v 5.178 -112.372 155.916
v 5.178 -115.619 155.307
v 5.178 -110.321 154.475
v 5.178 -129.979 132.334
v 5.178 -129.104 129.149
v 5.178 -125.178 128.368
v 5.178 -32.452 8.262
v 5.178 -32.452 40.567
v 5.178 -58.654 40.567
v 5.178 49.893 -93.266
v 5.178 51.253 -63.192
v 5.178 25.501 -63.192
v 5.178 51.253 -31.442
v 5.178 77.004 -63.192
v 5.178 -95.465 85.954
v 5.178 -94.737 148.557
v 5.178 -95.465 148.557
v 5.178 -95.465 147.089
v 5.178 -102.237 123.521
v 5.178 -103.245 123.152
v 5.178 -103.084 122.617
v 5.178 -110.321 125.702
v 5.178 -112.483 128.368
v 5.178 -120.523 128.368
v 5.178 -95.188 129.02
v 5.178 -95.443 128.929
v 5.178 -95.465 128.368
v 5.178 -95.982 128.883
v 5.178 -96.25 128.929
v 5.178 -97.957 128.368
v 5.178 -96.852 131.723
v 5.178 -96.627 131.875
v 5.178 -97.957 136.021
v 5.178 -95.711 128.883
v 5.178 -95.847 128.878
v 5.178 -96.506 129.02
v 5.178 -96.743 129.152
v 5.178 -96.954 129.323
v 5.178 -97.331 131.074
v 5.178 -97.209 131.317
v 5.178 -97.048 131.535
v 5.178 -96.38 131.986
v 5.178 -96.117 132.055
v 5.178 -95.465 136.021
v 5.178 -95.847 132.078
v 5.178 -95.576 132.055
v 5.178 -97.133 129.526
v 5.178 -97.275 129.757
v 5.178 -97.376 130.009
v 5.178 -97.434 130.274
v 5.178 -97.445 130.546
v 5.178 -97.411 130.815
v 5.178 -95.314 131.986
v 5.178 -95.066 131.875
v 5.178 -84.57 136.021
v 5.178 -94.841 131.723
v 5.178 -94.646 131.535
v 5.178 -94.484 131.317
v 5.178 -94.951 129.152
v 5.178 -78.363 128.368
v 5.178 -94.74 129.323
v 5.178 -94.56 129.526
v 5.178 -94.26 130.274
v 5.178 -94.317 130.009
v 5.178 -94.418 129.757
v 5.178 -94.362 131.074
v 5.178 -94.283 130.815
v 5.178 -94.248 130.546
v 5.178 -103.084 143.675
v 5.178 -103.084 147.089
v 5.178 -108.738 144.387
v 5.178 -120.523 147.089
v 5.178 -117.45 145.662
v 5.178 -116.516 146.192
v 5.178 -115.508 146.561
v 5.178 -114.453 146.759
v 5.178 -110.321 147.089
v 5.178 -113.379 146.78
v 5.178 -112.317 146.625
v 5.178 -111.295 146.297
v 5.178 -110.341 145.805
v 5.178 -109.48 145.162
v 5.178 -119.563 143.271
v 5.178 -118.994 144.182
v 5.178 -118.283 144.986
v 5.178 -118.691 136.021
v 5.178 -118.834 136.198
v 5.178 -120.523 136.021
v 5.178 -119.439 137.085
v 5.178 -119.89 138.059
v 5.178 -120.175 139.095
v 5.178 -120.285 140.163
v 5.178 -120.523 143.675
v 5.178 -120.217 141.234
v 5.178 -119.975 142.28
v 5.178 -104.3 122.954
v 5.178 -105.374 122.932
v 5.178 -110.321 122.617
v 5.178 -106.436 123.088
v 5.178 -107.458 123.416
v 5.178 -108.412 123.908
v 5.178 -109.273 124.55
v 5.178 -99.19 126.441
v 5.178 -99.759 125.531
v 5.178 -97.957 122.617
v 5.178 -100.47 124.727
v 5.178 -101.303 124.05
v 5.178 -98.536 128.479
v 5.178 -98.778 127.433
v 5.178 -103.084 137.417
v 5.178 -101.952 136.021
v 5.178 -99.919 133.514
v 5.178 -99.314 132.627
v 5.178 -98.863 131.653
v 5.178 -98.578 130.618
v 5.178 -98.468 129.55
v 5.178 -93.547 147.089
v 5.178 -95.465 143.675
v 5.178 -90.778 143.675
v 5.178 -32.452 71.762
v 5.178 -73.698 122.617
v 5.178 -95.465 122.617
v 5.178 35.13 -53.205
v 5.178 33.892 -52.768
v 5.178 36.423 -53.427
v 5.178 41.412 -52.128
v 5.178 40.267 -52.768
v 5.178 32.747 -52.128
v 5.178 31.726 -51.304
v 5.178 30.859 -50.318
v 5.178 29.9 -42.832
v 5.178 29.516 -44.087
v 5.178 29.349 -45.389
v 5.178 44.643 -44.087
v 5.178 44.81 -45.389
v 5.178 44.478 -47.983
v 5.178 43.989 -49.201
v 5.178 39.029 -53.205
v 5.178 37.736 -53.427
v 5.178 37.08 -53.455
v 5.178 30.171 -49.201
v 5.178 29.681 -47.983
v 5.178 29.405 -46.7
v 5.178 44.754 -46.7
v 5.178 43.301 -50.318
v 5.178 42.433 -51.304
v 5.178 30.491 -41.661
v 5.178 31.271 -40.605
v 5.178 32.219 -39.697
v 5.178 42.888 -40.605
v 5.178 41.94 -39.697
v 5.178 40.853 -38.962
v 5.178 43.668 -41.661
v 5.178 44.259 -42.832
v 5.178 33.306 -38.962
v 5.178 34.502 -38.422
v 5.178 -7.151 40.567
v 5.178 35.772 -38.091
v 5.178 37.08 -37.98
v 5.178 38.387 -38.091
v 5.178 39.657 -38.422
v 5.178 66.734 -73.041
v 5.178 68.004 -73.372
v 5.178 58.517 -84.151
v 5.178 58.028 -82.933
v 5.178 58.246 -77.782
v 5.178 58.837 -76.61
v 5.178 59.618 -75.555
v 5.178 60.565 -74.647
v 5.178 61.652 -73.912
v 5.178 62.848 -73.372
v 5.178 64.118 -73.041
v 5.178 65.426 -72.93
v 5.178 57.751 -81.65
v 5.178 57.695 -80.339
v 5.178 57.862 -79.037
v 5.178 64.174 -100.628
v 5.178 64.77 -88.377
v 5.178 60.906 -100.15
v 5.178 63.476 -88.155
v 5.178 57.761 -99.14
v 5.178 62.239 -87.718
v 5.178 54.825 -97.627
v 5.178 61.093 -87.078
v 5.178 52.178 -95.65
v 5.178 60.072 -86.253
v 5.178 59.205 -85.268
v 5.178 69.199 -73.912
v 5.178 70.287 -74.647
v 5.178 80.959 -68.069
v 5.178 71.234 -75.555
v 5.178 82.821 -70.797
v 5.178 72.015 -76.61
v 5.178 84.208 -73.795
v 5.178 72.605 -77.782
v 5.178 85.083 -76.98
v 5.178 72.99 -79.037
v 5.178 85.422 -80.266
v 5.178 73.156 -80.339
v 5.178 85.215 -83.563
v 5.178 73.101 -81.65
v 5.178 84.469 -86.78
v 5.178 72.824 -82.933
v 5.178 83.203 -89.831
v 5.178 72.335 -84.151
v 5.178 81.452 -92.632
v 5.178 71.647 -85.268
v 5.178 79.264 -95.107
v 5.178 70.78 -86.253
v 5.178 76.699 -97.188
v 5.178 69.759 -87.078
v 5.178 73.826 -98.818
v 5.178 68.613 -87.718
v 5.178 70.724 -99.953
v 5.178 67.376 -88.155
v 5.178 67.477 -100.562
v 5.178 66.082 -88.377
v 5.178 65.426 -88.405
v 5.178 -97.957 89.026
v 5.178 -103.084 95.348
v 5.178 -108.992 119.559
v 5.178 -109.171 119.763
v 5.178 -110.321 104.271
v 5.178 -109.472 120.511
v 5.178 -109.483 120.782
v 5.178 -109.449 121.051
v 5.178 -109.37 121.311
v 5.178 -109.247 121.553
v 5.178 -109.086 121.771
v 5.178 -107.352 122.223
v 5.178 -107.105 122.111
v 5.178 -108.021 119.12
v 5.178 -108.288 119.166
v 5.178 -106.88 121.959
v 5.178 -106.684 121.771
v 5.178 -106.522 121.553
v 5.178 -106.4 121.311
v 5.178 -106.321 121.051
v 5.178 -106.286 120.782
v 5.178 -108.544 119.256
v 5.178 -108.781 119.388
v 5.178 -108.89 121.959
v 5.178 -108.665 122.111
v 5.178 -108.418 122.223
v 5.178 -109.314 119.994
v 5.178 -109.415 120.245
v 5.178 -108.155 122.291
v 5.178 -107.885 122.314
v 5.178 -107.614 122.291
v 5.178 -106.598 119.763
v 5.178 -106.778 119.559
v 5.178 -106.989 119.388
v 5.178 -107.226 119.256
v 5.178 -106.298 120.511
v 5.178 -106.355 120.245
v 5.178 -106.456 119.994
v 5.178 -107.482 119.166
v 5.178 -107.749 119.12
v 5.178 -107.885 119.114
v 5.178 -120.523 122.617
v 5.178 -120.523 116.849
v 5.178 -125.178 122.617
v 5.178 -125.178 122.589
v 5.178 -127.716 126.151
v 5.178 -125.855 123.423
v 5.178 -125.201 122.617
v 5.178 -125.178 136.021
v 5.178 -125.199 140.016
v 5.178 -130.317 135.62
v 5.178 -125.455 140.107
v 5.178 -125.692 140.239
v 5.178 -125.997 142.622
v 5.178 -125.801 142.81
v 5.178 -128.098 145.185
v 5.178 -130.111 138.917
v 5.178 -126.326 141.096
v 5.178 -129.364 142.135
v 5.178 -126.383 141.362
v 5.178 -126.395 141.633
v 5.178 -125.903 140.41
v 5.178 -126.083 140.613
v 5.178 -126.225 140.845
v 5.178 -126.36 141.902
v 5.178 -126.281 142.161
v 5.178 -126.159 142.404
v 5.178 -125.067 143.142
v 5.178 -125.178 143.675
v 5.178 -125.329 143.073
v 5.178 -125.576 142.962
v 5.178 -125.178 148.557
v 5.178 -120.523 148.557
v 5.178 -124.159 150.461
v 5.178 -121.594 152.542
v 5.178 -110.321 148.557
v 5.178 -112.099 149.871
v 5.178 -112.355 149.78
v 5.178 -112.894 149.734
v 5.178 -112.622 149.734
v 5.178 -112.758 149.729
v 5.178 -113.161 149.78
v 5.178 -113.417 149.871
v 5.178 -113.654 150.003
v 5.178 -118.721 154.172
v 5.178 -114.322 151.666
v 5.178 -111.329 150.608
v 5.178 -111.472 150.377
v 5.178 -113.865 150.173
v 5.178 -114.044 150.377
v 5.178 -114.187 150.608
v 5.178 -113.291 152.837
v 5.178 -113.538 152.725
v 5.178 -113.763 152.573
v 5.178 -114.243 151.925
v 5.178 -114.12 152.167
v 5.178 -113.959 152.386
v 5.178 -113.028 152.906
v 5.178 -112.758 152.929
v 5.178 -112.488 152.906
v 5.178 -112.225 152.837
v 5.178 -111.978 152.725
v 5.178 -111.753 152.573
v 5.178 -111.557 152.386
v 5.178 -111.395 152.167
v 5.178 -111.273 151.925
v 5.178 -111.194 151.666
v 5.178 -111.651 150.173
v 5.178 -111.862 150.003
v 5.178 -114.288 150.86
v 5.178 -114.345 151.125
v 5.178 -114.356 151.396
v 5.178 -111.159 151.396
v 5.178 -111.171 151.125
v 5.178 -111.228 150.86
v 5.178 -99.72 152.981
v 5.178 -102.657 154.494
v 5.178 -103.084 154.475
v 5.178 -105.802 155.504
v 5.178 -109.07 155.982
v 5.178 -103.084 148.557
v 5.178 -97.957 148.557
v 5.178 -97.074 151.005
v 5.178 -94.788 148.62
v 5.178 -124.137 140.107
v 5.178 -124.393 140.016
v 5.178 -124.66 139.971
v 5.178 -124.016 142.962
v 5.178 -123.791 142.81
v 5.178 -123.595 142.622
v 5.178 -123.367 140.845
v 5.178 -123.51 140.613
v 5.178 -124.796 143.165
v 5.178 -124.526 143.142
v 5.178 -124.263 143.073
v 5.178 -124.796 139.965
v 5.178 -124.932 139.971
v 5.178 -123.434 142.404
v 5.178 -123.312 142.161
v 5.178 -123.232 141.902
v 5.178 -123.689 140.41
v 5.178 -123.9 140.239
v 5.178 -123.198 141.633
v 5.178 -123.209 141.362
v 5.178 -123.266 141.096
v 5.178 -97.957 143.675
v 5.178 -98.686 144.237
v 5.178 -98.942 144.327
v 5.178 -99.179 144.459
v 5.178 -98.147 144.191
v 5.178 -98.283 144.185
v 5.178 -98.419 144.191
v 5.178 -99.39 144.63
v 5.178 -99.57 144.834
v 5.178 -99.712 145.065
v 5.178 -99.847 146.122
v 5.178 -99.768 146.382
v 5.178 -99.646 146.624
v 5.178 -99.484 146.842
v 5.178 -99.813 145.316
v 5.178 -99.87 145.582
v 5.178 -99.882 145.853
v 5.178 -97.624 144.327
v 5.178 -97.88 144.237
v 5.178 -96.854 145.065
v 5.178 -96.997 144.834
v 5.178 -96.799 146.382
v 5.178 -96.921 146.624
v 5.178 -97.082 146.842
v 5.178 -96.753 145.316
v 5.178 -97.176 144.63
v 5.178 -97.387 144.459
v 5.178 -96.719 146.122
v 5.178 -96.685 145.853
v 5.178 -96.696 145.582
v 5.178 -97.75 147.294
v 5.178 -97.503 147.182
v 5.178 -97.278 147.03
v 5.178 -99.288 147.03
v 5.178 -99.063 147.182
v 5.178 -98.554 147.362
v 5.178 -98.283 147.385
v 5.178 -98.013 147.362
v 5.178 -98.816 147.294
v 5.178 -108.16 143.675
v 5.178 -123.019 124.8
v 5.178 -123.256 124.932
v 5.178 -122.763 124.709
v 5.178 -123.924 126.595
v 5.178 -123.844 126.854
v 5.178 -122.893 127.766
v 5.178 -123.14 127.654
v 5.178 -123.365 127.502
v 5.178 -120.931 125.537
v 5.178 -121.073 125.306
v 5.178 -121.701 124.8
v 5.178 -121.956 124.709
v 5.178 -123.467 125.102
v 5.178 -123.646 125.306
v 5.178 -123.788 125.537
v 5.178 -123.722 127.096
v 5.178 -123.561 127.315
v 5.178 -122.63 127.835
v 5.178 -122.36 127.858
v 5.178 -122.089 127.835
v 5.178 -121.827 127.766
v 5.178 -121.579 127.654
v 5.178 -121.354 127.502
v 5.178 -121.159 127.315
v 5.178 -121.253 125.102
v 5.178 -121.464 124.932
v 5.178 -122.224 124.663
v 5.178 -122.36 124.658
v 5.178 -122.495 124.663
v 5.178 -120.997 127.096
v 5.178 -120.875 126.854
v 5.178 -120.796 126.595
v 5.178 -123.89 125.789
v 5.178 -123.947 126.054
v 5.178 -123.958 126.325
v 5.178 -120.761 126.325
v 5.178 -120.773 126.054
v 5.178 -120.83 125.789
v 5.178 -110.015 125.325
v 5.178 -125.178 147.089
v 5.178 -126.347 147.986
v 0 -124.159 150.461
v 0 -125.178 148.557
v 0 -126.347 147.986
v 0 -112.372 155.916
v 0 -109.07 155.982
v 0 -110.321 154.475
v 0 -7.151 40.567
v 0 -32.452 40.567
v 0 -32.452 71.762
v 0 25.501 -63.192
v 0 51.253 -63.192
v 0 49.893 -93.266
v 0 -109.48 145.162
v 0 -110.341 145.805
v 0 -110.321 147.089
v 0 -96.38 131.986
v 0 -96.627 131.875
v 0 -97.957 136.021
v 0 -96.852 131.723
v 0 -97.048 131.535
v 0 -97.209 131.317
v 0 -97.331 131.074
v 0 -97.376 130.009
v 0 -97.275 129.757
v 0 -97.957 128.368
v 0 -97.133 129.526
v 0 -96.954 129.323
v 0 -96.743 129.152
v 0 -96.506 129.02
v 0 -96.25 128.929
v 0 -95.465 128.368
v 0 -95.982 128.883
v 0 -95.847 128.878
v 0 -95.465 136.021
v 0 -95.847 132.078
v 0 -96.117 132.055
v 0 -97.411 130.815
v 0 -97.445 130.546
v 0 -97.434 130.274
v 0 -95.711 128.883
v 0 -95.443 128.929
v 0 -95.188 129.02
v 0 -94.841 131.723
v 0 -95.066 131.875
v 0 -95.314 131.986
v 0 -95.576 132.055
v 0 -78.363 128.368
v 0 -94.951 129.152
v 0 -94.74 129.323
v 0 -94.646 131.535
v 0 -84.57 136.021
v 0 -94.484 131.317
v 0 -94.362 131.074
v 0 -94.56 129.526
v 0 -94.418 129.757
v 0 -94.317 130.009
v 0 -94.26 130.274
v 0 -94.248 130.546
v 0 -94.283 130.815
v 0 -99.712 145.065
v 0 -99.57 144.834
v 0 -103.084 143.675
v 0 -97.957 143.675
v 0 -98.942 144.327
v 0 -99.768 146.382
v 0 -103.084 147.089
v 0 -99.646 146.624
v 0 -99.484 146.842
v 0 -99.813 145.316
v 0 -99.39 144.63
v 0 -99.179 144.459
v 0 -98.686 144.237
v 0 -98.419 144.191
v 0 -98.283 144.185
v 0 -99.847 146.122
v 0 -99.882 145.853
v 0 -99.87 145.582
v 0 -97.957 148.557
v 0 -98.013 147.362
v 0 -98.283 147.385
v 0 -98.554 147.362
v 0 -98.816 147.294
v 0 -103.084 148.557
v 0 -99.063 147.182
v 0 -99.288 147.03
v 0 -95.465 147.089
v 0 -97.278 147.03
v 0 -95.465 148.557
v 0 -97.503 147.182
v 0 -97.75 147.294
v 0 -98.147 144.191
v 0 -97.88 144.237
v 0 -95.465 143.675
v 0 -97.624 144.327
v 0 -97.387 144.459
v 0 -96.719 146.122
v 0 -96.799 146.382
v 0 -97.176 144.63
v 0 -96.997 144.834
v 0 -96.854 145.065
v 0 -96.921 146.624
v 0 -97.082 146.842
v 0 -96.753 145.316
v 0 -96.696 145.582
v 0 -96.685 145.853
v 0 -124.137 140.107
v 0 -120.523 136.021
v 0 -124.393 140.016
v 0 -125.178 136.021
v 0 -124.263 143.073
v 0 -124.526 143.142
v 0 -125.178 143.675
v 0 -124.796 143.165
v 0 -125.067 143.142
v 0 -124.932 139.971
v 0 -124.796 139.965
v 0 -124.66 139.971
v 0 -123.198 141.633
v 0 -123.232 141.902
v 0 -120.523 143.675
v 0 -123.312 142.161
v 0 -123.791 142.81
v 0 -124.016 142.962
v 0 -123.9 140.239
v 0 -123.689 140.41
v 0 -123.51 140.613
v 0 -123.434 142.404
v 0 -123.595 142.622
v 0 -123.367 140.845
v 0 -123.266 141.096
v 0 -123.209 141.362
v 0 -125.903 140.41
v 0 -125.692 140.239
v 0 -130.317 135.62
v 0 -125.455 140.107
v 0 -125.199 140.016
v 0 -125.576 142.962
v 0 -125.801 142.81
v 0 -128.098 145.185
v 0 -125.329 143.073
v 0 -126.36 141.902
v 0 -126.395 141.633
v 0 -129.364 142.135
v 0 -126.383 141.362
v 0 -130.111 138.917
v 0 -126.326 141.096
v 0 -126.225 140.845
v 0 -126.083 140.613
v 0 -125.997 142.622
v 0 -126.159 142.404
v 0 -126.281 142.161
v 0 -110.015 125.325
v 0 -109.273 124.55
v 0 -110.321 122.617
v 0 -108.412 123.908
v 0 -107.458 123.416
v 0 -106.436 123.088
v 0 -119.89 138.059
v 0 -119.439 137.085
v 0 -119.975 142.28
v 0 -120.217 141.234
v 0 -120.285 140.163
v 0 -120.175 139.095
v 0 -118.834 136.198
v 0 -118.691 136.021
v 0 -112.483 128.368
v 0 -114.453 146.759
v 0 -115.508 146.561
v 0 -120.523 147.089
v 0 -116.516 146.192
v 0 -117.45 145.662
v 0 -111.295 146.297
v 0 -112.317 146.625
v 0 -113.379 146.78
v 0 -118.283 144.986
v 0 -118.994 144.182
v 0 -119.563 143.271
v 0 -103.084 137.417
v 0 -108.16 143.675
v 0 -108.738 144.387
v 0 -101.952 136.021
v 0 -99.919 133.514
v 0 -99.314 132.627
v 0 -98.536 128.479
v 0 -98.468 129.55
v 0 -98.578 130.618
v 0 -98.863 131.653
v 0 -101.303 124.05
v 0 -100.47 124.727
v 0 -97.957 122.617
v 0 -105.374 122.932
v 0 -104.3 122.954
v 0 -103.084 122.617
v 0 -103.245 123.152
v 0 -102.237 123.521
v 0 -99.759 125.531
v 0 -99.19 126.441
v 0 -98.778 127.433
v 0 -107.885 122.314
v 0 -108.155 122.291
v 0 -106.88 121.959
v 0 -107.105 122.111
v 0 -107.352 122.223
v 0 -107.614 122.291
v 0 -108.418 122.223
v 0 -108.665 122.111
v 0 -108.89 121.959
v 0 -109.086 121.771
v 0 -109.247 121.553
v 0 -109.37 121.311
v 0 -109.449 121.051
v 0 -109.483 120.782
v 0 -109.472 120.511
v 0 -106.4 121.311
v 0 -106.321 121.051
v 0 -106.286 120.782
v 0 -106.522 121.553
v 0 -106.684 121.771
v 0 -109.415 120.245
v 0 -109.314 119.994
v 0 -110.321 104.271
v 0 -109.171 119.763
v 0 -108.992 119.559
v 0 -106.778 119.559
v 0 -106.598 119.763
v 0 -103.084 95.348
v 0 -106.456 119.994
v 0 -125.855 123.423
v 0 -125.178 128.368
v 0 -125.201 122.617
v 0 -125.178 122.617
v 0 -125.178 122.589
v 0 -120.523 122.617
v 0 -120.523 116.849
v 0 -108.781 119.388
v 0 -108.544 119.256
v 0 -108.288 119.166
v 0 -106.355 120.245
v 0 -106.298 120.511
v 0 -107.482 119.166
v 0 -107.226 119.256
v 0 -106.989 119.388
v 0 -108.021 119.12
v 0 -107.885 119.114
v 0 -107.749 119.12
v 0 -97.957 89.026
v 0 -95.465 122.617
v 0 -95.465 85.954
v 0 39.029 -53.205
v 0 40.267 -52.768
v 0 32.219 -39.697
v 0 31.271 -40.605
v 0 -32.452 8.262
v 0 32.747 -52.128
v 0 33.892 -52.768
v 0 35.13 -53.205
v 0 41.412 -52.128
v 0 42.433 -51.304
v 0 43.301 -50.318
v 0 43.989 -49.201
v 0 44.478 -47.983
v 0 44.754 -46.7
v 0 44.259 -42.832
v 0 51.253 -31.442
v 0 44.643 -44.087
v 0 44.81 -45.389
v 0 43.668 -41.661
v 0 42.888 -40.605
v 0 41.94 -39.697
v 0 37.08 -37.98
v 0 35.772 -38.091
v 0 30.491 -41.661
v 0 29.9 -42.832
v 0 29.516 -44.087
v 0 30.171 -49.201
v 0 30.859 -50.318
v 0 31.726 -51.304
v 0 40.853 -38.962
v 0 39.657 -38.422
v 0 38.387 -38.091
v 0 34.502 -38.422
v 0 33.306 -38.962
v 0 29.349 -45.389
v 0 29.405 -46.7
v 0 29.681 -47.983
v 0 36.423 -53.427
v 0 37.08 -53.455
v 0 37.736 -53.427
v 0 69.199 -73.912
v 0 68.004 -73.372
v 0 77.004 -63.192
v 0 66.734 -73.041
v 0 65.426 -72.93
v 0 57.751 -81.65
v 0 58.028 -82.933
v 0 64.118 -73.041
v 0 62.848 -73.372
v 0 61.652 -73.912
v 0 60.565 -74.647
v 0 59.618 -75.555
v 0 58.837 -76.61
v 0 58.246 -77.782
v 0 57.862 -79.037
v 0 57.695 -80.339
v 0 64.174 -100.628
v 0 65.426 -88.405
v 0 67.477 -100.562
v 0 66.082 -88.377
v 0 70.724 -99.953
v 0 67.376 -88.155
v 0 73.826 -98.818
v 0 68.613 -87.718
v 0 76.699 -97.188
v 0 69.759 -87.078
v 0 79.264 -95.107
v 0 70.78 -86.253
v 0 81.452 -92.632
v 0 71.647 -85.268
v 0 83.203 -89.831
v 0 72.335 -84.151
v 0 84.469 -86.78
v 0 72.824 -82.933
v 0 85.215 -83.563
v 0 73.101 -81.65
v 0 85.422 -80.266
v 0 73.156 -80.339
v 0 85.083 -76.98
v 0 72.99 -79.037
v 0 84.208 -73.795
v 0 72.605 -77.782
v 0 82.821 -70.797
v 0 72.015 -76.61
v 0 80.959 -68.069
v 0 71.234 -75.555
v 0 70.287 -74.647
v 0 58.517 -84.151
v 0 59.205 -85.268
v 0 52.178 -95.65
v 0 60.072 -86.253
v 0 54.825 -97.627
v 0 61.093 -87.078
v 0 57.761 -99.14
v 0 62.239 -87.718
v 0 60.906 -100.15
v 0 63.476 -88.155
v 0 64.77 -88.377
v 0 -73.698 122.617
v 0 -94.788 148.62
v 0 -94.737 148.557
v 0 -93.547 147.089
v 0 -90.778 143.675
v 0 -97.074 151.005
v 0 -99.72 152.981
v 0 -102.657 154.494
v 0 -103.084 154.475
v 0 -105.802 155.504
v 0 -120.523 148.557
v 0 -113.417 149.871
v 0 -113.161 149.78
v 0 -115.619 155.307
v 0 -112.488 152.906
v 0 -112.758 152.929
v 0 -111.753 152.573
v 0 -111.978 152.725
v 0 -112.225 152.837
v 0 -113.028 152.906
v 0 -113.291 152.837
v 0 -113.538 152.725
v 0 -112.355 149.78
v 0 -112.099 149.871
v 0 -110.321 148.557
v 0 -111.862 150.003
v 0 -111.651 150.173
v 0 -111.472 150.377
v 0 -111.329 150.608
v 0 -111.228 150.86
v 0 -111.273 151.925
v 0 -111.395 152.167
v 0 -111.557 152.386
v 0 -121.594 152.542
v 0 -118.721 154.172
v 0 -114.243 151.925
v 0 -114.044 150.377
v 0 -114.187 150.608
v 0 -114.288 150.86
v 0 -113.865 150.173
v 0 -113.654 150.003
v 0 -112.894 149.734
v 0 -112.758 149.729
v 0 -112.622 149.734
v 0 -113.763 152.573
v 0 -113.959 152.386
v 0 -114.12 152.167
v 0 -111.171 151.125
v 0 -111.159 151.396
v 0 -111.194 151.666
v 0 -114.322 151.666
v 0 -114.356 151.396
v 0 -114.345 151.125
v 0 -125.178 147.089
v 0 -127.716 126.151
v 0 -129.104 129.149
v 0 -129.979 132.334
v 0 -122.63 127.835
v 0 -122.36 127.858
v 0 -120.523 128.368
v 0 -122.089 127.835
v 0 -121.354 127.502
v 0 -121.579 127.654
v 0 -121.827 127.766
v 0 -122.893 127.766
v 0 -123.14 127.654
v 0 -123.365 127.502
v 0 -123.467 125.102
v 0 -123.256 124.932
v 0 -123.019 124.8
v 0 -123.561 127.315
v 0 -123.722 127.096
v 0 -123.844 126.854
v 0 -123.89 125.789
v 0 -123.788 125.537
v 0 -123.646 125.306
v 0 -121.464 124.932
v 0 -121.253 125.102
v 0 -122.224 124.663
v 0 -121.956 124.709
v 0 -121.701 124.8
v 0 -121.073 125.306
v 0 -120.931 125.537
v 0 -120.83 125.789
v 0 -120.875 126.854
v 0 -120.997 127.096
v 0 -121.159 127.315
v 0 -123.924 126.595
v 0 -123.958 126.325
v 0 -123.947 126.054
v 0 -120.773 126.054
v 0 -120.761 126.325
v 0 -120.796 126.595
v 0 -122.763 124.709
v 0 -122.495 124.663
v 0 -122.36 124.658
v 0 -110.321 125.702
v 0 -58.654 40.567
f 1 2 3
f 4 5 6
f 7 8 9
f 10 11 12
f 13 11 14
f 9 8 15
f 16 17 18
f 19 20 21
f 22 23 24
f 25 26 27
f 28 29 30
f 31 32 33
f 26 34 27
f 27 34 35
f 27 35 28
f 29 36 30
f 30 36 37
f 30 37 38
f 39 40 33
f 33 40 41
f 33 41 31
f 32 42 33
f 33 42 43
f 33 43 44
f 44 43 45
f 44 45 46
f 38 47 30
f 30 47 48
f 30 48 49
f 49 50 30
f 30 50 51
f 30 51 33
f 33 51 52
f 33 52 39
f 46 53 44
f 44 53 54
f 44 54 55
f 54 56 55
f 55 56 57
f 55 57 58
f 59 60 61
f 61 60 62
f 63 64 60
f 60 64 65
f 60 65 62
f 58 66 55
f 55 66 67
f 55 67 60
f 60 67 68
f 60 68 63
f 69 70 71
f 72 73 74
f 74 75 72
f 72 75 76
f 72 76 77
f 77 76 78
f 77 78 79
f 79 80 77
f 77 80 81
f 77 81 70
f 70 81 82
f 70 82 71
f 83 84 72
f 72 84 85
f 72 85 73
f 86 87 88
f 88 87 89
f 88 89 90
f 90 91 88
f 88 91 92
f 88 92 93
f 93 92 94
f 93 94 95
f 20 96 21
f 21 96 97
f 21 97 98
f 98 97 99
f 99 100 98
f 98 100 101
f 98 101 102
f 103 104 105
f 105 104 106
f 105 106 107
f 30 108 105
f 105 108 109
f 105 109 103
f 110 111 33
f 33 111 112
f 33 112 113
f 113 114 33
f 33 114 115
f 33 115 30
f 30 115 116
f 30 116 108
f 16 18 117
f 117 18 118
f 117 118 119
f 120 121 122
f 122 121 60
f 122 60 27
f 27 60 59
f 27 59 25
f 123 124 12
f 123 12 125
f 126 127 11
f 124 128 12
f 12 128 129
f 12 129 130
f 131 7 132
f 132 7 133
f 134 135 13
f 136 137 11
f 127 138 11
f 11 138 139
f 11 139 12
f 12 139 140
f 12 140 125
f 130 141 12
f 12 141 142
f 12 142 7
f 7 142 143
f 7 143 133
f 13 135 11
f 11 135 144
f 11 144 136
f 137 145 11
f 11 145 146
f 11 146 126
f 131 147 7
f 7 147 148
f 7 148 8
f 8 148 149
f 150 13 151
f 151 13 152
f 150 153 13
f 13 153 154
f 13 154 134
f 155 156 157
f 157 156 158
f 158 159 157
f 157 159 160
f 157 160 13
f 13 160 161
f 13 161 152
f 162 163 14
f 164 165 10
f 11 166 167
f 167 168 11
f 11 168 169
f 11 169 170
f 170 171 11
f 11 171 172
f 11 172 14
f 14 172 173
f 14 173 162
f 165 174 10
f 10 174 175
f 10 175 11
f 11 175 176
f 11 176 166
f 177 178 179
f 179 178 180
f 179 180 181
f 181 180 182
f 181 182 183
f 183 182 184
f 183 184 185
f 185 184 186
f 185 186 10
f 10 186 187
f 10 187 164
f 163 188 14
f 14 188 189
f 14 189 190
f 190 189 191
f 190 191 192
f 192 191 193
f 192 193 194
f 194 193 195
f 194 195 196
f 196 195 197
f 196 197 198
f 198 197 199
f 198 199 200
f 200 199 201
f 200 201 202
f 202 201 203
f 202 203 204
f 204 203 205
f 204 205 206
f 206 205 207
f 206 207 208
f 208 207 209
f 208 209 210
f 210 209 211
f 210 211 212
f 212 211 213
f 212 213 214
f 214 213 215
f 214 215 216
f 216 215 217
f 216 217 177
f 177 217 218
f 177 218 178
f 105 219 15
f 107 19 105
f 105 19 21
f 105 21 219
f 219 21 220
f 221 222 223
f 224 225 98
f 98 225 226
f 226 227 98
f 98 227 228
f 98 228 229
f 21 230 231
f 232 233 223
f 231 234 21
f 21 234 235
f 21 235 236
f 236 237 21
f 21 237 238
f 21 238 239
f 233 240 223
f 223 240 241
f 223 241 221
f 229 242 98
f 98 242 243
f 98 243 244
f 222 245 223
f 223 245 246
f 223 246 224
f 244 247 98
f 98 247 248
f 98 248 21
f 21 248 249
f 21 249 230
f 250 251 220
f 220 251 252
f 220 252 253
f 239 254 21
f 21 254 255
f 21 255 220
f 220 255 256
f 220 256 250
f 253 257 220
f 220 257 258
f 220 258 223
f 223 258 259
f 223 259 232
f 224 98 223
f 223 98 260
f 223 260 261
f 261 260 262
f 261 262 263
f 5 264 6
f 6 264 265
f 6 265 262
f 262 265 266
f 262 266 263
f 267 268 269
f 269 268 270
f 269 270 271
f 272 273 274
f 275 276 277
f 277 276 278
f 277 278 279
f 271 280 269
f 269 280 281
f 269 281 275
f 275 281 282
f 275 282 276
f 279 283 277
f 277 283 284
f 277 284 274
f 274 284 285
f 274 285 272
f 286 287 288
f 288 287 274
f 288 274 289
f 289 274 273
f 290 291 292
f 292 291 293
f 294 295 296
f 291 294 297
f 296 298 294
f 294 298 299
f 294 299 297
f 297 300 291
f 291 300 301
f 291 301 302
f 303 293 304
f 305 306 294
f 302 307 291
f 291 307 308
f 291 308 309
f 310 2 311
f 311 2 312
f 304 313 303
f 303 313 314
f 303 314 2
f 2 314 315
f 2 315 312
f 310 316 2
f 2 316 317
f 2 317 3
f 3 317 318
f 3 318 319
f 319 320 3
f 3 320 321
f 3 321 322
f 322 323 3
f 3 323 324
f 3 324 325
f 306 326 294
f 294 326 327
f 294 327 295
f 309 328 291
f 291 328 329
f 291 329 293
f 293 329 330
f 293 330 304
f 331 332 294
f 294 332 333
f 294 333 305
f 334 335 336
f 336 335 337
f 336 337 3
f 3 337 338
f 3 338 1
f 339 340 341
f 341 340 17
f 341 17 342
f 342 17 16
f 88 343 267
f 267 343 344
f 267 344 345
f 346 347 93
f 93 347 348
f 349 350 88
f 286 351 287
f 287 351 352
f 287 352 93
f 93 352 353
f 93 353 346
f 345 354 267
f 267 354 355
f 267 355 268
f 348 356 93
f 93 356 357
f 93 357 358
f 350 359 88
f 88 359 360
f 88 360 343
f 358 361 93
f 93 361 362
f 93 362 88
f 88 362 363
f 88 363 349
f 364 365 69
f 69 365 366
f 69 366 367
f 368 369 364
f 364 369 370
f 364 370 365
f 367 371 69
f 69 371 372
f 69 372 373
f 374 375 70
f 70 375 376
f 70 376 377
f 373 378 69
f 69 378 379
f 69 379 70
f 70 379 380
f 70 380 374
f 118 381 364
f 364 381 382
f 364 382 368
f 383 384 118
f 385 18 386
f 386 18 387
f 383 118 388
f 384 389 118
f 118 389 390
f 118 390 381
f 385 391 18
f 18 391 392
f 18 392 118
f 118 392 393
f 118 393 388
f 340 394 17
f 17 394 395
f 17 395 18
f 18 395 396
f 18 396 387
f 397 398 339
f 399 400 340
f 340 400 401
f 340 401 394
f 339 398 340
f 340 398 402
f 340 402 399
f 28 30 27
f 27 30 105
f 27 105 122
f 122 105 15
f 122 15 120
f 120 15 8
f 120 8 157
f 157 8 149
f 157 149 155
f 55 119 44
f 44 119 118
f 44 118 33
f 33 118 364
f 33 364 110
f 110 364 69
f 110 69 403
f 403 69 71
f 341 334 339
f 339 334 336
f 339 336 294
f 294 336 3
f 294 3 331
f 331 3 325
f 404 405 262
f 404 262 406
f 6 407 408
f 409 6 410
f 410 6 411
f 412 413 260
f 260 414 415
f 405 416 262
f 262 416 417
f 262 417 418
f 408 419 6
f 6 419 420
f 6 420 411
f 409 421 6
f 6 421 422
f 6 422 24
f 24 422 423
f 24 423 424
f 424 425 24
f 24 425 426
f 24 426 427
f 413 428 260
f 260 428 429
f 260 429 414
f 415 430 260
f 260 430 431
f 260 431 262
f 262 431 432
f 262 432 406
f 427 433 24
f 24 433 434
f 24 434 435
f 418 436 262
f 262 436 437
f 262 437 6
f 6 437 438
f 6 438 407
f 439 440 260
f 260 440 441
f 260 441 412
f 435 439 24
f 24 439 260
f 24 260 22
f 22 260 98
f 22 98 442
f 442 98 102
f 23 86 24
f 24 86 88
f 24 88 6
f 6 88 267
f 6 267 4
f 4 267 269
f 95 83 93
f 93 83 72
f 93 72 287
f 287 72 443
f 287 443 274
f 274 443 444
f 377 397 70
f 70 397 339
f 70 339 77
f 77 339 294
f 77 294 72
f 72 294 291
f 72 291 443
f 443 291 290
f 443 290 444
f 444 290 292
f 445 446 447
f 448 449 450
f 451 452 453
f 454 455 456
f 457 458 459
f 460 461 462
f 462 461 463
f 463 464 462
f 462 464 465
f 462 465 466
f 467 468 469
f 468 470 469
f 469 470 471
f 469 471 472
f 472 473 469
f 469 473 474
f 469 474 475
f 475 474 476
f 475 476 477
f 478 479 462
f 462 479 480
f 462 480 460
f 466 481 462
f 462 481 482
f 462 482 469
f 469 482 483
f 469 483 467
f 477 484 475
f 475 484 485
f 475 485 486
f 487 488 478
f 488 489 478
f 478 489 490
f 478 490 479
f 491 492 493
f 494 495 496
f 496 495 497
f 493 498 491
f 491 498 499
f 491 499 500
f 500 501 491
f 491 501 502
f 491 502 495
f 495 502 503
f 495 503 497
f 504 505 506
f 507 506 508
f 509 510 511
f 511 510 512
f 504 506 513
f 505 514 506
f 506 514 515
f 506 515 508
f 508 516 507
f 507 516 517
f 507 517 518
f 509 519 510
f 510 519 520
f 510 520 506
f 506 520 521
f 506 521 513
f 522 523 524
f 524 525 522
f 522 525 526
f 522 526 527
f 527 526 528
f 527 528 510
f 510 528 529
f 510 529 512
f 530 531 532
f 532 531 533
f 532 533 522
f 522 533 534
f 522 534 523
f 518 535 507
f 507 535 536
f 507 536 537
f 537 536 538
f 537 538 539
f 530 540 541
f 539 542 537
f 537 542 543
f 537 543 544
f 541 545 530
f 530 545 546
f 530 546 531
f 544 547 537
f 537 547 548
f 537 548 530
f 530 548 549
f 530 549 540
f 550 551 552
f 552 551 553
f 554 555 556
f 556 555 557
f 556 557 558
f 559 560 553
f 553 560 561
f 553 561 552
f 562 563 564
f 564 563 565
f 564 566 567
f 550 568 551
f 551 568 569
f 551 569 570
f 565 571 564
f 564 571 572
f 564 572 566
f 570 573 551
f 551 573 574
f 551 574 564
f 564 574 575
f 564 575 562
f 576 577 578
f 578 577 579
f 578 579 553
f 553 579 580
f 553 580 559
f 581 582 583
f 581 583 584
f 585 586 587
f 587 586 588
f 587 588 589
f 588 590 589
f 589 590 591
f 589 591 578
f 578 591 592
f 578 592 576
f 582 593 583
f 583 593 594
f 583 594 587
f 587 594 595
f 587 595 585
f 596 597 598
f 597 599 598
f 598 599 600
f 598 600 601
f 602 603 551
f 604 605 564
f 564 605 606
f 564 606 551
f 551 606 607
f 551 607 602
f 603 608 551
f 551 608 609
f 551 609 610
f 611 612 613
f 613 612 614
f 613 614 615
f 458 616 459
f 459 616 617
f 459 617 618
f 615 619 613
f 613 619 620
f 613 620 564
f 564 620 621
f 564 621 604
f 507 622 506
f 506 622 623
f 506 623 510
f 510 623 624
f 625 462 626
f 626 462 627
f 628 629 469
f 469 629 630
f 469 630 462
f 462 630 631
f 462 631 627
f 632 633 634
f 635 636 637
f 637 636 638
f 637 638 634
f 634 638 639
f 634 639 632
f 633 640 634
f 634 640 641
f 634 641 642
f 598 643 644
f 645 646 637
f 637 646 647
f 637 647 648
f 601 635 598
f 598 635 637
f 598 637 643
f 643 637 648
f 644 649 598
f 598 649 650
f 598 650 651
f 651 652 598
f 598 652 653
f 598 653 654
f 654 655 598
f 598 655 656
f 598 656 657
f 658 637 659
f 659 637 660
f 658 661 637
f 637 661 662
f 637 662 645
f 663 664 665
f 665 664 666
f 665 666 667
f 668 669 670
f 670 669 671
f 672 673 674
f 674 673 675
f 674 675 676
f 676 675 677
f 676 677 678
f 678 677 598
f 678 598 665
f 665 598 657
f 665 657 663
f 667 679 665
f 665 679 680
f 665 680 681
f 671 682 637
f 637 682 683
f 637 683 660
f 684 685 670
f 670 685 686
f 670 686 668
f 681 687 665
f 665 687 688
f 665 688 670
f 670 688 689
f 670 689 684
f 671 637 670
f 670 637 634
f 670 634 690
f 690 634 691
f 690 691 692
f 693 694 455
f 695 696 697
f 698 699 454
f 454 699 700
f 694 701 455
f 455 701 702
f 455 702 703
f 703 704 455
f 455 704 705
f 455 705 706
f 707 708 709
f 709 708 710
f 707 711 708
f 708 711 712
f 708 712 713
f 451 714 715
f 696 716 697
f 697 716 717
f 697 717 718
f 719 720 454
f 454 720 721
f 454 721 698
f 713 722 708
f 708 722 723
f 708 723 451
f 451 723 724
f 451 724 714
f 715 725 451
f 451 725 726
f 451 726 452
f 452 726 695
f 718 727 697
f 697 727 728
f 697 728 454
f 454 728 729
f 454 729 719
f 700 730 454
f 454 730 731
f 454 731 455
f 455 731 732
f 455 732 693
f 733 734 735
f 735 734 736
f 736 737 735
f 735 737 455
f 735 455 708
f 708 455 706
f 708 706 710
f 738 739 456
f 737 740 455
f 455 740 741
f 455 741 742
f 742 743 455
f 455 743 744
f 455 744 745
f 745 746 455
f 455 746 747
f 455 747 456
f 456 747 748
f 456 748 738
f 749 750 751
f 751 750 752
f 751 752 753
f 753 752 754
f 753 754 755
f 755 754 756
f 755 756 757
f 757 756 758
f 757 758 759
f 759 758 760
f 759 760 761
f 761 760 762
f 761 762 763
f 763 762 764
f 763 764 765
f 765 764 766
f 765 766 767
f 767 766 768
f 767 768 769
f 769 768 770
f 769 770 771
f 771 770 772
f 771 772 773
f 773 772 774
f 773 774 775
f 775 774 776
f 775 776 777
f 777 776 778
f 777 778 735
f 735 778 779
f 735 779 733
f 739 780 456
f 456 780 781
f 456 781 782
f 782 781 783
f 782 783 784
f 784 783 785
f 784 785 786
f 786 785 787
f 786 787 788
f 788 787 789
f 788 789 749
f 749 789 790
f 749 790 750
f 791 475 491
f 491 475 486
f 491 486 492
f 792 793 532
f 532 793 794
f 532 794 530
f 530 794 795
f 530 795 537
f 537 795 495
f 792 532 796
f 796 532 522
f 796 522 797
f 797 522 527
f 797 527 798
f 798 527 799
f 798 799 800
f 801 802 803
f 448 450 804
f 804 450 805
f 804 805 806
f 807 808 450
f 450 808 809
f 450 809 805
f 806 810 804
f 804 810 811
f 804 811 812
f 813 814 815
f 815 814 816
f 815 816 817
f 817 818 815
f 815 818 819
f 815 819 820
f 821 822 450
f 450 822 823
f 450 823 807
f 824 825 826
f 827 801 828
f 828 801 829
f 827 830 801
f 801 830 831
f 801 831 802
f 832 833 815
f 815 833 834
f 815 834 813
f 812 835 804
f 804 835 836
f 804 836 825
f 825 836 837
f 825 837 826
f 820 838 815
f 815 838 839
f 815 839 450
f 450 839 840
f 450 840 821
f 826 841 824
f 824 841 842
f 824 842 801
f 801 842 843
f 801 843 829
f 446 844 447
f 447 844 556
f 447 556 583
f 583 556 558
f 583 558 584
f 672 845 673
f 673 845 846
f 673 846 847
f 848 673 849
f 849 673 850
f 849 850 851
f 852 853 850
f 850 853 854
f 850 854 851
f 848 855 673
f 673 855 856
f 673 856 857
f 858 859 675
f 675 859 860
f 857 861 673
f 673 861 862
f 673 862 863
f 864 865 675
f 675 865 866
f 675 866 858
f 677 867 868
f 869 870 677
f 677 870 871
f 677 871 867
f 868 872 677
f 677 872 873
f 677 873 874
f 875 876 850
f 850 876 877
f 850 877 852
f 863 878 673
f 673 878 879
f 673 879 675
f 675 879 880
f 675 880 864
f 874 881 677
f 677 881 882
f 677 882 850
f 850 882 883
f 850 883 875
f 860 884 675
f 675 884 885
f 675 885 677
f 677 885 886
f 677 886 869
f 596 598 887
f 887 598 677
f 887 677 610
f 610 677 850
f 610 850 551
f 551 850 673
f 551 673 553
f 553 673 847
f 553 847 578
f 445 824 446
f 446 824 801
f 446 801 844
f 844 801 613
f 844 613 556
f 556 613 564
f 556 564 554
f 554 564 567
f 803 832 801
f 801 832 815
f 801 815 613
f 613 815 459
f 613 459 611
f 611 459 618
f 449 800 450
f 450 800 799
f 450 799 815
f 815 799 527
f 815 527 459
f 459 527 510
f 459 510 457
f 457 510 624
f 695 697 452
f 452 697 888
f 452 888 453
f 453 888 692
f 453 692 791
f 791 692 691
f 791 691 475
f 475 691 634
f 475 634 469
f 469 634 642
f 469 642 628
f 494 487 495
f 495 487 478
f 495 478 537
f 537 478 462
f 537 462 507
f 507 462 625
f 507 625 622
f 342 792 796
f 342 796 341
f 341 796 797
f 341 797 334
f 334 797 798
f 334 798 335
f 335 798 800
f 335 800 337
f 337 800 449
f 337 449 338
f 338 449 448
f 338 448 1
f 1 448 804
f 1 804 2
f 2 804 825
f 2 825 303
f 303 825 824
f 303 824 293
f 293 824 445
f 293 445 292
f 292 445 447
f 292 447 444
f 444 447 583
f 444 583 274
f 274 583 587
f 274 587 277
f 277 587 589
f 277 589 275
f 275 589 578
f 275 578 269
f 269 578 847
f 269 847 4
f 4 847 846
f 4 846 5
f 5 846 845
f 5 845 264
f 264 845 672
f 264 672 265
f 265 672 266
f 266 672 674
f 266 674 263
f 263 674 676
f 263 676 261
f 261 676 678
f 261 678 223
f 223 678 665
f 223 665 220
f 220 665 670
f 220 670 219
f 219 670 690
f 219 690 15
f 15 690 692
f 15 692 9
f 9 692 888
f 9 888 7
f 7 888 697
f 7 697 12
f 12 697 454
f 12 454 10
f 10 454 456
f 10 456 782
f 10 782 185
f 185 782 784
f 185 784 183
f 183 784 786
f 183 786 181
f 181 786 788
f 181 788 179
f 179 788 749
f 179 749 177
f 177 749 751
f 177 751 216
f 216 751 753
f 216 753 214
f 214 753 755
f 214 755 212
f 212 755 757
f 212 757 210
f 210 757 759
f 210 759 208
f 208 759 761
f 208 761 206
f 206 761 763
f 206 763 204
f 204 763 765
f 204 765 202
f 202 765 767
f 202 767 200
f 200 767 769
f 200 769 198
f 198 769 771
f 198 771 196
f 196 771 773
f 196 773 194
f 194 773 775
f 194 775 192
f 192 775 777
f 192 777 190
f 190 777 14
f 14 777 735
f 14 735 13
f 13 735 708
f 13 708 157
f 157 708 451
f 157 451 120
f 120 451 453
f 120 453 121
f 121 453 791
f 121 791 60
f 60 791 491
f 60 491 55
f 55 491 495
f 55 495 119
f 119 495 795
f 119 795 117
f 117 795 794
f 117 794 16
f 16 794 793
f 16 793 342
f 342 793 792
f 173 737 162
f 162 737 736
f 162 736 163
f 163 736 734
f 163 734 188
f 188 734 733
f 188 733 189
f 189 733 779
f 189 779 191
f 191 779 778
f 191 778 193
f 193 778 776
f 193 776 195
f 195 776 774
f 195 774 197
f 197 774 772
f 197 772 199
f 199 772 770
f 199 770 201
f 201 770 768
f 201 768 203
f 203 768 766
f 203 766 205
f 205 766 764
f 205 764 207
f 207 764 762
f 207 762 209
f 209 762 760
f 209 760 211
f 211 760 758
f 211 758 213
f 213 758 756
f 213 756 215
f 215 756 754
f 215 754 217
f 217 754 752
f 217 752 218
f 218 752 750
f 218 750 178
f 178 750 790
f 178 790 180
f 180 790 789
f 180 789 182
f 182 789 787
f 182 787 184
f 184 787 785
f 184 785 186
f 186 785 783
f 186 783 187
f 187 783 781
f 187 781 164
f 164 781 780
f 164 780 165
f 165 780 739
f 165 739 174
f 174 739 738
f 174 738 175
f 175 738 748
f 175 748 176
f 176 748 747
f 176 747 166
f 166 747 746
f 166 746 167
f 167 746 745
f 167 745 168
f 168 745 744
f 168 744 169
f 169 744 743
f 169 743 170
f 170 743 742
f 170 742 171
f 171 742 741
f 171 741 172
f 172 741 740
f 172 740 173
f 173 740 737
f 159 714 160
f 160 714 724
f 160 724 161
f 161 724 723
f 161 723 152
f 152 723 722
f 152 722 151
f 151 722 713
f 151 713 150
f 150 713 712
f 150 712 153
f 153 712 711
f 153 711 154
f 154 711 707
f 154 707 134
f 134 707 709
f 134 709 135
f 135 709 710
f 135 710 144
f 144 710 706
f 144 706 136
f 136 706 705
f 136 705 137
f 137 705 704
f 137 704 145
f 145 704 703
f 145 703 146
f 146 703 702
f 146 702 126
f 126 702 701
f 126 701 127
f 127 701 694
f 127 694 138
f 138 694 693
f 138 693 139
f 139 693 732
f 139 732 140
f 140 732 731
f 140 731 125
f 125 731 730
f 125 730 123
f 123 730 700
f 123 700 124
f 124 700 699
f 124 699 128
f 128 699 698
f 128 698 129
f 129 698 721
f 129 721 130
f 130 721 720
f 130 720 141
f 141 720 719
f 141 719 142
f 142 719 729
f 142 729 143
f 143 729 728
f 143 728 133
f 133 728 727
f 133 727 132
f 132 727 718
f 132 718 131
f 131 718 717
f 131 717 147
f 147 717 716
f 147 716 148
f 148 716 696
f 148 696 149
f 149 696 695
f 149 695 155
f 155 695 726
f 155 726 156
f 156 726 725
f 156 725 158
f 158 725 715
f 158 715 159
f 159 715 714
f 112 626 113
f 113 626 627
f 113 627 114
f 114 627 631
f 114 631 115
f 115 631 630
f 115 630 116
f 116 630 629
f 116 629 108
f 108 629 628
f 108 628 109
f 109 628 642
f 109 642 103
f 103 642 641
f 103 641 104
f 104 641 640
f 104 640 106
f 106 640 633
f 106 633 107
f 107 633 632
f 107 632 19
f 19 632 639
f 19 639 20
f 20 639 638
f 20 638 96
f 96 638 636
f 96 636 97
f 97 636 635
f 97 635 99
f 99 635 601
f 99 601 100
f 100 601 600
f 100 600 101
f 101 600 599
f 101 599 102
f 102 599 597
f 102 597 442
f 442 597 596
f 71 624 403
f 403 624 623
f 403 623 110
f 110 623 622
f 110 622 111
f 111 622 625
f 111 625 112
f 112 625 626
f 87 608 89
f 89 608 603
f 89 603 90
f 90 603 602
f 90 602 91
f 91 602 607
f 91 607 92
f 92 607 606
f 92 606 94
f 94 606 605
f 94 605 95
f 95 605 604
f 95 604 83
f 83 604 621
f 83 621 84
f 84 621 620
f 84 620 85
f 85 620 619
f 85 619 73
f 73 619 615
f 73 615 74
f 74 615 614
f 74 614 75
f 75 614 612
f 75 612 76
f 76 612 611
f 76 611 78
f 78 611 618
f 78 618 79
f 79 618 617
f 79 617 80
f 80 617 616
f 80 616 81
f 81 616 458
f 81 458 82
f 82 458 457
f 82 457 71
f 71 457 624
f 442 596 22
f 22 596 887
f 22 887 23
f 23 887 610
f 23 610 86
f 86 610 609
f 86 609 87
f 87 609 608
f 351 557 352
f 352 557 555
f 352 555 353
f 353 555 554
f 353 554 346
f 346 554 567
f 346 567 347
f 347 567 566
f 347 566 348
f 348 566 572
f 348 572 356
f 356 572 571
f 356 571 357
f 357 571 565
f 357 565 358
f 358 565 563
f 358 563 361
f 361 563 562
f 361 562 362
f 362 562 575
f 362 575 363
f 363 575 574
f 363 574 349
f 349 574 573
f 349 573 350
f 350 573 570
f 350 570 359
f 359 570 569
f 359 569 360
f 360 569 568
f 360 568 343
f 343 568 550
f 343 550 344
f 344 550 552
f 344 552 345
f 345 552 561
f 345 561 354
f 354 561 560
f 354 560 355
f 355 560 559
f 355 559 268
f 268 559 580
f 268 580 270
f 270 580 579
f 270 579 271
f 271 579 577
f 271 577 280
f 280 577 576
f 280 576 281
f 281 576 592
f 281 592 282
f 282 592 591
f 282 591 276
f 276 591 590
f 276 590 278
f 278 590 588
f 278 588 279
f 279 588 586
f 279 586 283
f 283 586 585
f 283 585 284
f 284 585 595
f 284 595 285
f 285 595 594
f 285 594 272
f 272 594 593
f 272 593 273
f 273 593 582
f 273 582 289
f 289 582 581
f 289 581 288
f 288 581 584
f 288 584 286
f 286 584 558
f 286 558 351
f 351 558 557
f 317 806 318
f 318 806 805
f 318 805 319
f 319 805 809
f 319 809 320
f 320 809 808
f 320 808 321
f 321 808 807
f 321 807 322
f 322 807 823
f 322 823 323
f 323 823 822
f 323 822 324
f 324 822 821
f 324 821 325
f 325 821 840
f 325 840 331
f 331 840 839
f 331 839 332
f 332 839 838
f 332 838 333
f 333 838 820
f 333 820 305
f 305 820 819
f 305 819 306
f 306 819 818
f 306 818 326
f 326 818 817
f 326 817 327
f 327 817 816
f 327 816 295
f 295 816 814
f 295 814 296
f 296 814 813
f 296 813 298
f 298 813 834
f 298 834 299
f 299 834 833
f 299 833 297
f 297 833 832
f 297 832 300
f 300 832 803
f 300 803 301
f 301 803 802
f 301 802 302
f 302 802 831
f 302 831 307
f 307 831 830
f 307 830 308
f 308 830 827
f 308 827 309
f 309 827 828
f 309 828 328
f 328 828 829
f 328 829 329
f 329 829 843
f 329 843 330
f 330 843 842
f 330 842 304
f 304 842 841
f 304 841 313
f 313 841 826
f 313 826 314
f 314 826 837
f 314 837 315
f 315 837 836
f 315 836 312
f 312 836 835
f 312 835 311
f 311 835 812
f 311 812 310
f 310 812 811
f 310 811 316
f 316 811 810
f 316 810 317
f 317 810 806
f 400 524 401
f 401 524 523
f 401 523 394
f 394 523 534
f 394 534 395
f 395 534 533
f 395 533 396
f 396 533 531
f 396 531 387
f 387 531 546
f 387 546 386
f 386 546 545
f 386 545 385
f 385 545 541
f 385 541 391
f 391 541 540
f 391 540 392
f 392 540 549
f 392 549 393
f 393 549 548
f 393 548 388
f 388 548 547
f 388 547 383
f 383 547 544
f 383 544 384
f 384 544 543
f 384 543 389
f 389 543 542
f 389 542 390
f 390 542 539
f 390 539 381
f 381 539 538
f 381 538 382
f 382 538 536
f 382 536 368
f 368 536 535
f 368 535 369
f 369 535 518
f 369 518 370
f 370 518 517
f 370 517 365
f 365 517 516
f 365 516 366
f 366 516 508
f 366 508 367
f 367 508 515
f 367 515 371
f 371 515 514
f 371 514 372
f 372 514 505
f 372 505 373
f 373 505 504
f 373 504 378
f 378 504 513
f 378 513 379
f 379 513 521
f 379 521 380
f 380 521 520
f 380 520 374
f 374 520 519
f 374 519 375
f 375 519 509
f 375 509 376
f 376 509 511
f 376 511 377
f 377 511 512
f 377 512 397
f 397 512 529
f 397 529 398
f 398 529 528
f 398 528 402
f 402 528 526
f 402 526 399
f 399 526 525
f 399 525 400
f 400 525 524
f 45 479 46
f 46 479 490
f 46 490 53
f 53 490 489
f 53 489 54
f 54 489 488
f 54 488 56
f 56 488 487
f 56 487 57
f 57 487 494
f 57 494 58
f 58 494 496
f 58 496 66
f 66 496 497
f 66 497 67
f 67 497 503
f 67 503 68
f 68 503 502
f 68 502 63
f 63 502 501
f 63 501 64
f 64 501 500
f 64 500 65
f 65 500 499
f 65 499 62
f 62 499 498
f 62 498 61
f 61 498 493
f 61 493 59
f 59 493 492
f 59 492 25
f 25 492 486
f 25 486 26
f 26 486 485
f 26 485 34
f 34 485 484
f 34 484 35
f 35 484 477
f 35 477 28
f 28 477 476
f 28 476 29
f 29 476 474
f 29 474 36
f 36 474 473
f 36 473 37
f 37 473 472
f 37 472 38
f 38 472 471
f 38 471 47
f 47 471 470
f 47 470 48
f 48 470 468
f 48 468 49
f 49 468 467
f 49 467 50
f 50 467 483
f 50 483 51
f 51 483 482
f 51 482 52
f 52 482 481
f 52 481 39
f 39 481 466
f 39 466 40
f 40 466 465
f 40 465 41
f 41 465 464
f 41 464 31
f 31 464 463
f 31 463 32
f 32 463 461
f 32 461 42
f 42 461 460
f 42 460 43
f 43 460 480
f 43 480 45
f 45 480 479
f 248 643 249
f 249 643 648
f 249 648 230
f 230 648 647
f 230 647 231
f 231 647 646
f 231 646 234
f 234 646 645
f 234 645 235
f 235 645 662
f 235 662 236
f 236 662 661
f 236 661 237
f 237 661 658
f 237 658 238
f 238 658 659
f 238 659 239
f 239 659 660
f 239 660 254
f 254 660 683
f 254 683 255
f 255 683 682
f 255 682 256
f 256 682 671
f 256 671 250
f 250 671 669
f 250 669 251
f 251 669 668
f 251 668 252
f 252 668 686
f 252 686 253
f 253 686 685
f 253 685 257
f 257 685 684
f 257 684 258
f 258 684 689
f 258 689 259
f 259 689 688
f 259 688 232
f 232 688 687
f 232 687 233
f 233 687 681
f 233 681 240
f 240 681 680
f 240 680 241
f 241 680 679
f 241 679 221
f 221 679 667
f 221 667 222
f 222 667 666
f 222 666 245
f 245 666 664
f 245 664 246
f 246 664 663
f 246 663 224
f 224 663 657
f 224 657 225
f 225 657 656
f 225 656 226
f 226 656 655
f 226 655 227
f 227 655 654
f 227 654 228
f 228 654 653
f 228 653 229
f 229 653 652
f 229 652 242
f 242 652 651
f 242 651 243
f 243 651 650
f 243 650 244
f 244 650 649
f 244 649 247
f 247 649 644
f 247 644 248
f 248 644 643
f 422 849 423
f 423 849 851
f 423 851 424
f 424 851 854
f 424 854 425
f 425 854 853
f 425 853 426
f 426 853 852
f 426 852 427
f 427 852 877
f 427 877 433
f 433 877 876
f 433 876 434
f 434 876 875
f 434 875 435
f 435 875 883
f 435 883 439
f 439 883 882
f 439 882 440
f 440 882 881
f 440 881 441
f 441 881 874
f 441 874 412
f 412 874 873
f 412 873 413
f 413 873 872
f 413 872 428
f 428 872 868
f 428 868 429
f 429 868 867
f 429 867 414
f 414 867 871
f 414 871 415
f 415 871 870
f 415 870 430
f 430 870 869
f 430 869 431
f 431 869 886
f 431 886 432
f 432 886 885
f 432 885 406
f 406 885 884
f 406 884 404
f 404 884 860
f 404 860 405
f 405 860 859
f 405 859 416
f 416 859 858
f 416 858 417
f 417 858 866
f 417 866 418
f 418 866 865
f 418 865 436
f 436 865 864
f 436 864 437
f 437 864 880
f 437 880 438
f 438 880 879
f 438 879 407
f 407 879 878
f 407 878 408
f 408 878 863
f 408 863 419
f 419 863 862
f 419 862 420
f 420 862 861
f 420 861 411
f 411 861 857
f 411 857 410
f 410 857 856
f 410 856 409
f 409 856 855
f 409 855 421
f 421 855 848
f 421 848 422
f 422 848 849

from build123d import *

# Parameters (mm, degrees)
SKETCH1_R           = 7.7375
SKETCH1_R_2         = 1.6
BOSS_EXTRUDE1_DEPTH = 5.1784


with BuildPart() as part:
    # Sketch1 → Boss-Extrude1 (new body)
    with BuildSketch(Plane(origin=(0, 0, 0), x_dir=(0, 0, -1), z_dir=(1, 0, 0))):
        with BuildLine():
            Line((-148.619647966, -94.78818035), (68.068798078, 80.959130728))
            ThreePointArc((68.068798078, 80.959130728), (96.200393571, 78.024282343), (93.265545186, 49.89268685))
            Line((93.265545186, 49.89268685), (-123.422900858, -125.854624227))
            ThreePointArc((-123.422900858, -125.854624227), (-151.554496351, -122.919775842), (-148.619647966, -94.78818035))
        make_face()
        with Locations((80.667171632, 65.425908789)):
            Circle(SKETCH1_R, mode=Mode.SUBTRACT)
        with Locations((45.71742227, 37.079568293)):
            Circle(SKETCH1_R, mode=Mode.SUBTRACT)
        with Locations((-141.564832381, -124.796172236)):
            Circle(SKETCH1_R_2, mode=Mode.SUBTRACT)
        with Locations((-151.328571886, -112.757925234)):
            Circle(SKETCH1_R_2, mode=Mode.SUBTRACT)
        with Locations((-145.785013917, -98.283155286)):
            Circle(SKETCH1_R_2, mode=Mode.SUBTRACT)
        with Locations((-130.477716443, -95.84663234)):
            Circle(SKETCH1_R_2, mode=Mode.SUBTRACT)
        with Locations((-120.713976939, -107.884879343)):
            Circle(SKETCH1_R_2, mode=Mode.SUBTRACT)
        with Locations((-126.257534908, -122.359649291)):
            Circle(SKETCH1_R_2, mode=Mode.SUBTRACT)
        with BuildLine():
            Line((-125.325183683, -110.015390658), (-136.19843904, -118.834252146))
            ThreePointArc((-136.19843904, -118.834252146), (-145.341207576, -117.880426421), (-144.387381851, -108.737657886))
            Line((-144.387381851, -108.737657886), (-133.514126493, -99.918796398))
            ThreePointArc((-133.514126493, -99.918796398), (-124.371357958, -100.872622123), (-125.325183683, -110.015390658))
        make_face(mode=Mode.SUBTRACT)
    extrude(amount=BOSS_EXTRUDE1_DEPTH)


solid = part.part
